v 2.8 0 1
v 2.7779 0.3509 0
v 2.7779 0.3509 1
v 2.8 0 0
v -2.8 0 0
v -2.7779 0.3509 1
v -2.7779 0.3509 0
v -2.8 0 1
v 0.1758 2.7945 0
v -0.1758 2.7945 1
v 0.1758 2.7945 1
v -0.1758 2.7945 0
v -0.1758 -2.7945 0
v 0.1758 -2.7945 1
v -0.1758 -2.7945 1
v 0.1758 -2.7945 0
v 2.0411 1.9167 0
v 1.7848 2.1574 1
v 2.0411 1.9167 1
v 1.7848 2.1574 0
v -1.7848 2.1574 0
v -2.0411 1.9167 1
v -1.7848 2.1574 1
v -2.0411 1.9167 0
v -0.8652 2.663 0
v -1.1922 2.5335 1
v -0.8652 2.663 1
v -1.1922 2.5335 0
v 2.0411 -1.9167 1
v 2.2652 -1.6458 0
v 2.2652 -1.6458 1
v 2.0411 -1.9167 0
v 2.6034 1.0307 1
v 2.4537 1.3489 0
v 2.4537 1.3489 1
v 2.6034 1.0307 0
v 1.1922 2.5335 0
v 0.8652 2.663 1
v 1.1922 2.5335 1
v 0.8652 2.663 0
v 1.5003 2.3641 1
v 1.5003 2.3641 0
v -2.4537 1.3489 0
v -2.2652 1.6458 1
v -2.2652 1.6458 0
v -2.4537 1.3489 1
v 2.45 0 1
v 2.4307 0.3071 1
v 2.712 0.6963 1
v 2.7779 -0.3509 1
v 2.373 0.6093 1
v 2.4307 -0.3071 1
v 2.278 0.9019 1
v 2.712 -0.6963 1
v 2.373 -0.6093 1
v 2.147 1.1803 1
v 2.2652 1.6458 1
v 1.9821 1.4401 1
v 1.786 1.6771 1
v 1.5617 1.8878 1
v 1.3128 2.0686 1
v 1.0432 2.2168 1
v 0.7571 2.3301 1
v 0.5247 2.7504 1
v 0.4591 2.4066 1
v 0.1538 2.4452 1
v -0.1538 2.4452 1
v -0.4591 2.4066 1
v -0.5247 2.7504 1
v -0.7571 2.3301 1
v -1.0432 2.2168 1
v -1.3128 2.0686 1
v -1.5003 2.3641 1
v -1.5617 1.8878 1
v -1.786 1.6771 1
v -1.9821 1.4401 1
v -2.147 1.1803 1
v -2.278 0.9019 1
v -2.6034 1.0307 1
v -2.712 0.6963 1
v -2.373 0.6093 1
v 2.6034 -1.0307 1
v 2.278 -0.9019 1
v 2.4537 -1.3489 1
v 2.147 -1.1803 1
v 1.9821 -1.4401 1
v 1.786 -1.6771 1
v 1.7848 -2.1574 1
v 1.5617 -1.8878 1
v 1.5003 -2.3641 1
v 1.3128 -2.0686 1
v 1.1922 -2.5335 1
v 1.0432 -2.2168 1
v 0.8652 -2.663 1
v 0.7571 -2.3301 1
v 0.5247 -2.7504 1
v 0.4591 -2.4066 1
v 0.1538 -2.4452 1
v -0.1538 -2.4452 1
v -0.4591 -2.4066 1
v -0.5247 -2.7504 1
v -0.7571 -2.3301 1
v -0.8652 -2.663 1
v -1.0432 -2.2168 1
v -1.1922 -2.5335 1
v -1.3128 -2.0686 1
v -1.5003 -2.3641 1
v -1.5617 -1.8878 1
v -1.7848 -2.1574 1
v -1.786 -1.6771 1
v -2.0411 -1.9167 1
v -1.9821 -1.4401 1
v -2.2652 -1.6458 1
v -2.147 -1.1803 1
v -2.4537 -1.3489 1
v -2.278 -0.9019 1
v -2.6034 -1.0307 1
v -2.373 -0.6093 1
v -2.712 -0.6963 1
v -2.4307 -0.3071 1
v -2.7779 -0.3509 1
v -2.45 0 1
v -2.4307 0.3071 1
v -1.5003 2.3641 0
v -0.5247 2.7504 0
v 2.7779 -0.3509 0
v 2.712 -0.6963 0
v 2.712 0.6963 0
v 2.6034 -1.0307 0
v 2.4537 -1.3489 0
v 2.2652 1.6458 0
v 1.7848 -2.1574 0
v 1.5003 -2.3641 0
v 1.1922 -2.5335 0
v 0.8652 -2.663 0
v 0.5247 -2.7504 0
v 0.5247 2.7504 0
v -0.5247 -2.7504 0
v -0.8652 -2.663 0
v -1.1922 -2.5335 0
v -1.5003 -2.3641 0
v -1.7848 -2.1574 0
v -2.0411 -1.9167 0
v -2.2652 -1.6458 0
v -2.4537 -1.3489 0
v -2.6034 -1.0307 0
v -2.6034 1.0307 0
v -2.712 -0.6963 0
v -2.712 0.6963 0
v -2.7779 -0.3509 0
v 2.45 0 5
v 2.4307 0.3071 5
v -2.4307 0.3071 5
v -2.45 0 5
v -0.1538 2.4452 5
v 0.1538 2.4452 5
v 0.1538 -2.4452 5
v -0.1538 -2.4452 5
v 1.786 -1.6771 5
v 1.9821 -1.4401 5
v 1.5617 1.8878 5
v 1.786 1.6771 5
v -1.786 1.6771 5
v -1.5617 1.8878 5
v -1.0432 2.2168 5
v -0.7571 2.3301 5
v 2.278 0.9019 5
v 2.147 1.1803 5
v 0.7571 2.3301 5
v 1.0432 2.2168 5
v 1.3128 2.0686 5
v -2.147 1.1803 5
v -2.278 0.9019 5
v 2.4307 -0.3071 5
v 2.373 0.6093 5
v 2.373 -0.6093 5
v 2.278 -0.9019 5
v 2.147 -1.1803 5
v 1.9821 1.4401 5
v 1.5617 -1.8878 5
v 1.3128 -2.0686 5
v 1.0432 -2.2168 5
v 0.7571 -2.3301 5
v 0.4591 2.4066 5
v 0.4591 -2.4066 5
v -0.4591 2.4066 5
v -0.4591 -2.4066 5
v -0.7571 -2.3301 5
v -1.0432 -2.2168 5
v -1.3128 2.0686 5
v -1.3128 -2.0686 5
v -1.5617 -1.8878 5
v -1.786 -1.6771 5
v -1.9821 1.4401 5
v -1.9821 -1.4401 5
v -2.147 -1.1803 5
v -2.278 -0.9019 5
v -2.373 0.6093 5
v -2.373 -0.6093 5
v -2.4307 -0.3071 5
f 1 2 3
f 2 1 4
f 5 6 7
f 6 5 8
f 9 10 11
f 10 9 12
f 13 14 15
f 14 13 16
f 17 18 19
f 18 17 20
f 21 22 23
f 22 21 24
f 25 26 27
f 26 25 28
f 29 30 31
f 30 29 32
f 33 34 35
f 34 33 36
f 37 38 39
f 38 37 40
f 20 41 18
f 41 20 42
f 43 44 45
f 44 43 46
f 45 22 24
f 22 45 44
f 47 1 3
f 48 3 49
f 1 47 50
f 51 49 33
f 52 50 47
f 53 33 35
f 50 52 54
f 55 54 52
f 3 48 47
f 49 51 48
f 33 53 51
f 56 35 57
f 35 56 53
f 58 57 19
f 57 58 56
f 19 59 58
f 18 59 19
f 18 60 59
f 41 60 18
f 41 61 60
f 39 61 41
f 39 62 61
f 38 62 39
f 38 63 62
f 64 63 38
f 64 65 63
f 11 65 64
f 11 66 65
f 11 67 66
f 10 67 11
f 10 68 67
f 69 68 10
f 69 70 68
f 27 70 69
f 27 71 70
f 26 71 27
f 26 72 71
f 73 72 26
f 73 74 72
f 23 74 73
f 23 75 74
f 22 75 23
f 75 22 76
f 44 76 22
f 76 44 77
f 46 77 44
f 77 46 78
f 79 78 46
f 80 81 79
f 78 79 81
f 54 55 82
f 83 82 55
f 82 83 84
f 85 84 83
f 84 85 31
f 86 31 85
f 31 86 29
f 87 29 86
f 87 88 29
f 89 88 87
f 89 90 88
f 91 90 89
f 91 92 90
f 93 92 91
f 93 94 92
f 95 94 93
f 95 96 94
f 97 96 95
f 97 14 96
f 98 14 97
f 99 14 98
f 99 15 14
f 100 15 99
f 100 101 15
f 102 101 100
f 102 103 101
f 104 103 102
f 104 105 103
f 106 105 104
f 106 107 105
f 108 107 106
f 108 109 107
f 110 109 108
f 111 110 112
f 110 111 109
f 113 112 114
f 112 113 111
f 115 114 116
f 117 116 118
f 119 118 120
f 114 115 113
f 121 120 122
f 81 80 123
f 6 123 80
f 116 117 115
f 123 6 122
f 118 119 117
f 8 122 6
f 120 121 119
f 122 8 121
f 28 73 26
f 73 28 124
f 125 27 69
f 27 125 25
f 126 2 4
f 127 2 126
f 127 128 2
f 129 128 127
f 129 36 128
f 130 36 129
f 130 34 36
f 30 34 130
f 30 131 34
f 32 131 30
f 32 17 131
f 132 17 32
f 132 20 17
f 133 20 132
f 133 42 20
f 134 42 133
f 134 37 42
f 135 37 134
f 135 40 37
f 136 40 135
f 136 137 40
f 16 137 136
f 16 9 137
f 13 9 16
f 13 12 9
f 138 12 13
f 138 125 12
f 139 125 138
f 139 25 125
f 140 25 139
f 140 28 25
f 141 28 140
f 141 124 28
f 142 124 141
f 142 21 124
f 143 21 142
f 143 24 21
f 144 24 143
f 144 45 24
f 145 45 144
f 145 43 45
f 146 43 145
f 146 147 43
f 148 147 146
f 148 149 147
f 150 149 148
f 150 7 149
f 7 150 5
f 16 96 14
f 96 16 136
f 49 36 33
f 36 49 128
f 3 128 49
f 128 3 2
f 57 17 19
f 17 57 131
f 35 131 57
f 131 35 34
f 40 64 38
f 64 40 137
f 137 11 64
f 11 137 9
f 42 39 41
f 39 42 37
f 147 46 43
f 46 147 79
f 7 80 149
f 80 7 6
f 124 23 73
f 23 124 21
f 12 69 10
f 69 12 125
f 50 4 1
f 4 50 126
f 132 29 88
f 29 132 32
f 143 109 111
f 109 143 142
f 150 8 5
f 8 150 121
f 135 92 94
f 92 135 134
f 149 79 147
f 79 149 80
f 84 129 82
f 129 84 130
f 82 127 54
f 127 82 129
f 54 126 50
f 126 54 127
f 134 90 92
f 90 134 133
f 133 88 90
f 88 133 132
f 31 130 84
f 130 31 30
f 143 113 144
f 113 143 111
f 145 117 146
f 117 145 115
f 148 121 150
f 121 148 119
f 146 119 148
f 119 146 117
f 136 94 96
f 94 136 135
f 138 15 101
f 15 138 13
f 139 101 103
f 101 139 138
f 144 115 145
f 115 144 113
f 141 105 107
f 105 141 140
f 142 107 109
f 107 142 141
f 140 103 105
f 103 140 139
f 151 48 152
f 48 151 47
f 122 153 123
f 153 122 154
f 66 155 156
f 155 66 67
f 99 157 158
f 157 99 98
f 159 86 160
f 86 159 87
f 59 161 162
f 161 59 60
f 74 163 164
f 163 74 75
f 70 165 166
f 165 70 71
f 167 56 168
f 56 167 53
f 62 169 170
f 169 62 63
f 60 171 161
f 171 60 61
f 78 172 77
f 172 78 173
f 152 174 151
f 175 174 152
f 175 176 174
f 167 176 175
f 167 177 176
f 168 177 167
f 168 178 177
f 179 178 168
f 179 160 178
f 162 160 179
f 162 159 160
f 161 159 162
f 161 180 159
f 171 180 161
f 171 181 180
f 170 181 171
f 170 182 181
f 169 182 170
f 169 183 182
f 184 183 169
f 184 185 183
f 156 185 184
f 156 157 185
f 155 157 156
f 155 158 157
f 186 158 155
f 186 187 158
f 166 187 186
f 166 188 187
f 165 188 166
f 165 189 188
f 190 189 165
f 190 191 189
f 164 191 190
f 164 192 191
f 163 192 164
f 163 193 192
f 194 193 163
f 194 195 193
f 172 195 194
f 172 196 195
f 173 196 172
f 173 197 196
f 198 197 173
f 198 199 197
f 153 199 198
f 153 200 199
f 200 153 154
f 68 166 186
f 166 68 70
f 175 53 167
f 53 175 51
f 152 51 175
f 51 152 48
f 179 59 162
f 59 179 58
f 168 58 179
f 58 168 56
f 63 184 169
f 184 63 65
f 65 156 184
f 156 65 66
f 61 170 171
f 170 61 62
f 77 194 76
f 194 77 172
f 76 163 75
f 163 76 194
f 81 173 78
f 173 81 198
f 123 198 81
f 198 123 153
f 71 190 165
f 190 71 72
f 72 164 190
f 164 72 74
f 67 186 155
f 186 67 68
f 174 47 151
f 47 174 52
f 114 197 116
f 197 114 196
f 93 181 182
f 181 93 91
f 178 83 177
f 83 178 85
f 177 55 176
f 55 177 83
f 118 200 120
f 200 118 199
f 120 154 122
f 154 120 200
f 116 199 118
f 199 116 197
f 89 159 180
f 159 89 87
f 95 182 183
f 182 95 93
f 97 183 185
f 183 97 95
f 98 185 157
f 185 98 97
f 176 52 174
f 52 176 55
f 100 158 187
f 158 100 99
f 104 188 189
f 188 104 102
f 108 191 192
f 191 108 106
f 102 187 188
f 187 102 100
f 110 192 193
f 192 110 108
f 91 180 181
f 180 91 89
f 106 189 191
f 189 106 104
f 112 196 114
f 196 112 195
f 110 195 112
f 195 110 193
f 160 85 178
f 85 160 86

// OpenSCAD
$fn = 50;
cylinder(1,d=5.6, false);
cylinder(5,d=4.9, false);
